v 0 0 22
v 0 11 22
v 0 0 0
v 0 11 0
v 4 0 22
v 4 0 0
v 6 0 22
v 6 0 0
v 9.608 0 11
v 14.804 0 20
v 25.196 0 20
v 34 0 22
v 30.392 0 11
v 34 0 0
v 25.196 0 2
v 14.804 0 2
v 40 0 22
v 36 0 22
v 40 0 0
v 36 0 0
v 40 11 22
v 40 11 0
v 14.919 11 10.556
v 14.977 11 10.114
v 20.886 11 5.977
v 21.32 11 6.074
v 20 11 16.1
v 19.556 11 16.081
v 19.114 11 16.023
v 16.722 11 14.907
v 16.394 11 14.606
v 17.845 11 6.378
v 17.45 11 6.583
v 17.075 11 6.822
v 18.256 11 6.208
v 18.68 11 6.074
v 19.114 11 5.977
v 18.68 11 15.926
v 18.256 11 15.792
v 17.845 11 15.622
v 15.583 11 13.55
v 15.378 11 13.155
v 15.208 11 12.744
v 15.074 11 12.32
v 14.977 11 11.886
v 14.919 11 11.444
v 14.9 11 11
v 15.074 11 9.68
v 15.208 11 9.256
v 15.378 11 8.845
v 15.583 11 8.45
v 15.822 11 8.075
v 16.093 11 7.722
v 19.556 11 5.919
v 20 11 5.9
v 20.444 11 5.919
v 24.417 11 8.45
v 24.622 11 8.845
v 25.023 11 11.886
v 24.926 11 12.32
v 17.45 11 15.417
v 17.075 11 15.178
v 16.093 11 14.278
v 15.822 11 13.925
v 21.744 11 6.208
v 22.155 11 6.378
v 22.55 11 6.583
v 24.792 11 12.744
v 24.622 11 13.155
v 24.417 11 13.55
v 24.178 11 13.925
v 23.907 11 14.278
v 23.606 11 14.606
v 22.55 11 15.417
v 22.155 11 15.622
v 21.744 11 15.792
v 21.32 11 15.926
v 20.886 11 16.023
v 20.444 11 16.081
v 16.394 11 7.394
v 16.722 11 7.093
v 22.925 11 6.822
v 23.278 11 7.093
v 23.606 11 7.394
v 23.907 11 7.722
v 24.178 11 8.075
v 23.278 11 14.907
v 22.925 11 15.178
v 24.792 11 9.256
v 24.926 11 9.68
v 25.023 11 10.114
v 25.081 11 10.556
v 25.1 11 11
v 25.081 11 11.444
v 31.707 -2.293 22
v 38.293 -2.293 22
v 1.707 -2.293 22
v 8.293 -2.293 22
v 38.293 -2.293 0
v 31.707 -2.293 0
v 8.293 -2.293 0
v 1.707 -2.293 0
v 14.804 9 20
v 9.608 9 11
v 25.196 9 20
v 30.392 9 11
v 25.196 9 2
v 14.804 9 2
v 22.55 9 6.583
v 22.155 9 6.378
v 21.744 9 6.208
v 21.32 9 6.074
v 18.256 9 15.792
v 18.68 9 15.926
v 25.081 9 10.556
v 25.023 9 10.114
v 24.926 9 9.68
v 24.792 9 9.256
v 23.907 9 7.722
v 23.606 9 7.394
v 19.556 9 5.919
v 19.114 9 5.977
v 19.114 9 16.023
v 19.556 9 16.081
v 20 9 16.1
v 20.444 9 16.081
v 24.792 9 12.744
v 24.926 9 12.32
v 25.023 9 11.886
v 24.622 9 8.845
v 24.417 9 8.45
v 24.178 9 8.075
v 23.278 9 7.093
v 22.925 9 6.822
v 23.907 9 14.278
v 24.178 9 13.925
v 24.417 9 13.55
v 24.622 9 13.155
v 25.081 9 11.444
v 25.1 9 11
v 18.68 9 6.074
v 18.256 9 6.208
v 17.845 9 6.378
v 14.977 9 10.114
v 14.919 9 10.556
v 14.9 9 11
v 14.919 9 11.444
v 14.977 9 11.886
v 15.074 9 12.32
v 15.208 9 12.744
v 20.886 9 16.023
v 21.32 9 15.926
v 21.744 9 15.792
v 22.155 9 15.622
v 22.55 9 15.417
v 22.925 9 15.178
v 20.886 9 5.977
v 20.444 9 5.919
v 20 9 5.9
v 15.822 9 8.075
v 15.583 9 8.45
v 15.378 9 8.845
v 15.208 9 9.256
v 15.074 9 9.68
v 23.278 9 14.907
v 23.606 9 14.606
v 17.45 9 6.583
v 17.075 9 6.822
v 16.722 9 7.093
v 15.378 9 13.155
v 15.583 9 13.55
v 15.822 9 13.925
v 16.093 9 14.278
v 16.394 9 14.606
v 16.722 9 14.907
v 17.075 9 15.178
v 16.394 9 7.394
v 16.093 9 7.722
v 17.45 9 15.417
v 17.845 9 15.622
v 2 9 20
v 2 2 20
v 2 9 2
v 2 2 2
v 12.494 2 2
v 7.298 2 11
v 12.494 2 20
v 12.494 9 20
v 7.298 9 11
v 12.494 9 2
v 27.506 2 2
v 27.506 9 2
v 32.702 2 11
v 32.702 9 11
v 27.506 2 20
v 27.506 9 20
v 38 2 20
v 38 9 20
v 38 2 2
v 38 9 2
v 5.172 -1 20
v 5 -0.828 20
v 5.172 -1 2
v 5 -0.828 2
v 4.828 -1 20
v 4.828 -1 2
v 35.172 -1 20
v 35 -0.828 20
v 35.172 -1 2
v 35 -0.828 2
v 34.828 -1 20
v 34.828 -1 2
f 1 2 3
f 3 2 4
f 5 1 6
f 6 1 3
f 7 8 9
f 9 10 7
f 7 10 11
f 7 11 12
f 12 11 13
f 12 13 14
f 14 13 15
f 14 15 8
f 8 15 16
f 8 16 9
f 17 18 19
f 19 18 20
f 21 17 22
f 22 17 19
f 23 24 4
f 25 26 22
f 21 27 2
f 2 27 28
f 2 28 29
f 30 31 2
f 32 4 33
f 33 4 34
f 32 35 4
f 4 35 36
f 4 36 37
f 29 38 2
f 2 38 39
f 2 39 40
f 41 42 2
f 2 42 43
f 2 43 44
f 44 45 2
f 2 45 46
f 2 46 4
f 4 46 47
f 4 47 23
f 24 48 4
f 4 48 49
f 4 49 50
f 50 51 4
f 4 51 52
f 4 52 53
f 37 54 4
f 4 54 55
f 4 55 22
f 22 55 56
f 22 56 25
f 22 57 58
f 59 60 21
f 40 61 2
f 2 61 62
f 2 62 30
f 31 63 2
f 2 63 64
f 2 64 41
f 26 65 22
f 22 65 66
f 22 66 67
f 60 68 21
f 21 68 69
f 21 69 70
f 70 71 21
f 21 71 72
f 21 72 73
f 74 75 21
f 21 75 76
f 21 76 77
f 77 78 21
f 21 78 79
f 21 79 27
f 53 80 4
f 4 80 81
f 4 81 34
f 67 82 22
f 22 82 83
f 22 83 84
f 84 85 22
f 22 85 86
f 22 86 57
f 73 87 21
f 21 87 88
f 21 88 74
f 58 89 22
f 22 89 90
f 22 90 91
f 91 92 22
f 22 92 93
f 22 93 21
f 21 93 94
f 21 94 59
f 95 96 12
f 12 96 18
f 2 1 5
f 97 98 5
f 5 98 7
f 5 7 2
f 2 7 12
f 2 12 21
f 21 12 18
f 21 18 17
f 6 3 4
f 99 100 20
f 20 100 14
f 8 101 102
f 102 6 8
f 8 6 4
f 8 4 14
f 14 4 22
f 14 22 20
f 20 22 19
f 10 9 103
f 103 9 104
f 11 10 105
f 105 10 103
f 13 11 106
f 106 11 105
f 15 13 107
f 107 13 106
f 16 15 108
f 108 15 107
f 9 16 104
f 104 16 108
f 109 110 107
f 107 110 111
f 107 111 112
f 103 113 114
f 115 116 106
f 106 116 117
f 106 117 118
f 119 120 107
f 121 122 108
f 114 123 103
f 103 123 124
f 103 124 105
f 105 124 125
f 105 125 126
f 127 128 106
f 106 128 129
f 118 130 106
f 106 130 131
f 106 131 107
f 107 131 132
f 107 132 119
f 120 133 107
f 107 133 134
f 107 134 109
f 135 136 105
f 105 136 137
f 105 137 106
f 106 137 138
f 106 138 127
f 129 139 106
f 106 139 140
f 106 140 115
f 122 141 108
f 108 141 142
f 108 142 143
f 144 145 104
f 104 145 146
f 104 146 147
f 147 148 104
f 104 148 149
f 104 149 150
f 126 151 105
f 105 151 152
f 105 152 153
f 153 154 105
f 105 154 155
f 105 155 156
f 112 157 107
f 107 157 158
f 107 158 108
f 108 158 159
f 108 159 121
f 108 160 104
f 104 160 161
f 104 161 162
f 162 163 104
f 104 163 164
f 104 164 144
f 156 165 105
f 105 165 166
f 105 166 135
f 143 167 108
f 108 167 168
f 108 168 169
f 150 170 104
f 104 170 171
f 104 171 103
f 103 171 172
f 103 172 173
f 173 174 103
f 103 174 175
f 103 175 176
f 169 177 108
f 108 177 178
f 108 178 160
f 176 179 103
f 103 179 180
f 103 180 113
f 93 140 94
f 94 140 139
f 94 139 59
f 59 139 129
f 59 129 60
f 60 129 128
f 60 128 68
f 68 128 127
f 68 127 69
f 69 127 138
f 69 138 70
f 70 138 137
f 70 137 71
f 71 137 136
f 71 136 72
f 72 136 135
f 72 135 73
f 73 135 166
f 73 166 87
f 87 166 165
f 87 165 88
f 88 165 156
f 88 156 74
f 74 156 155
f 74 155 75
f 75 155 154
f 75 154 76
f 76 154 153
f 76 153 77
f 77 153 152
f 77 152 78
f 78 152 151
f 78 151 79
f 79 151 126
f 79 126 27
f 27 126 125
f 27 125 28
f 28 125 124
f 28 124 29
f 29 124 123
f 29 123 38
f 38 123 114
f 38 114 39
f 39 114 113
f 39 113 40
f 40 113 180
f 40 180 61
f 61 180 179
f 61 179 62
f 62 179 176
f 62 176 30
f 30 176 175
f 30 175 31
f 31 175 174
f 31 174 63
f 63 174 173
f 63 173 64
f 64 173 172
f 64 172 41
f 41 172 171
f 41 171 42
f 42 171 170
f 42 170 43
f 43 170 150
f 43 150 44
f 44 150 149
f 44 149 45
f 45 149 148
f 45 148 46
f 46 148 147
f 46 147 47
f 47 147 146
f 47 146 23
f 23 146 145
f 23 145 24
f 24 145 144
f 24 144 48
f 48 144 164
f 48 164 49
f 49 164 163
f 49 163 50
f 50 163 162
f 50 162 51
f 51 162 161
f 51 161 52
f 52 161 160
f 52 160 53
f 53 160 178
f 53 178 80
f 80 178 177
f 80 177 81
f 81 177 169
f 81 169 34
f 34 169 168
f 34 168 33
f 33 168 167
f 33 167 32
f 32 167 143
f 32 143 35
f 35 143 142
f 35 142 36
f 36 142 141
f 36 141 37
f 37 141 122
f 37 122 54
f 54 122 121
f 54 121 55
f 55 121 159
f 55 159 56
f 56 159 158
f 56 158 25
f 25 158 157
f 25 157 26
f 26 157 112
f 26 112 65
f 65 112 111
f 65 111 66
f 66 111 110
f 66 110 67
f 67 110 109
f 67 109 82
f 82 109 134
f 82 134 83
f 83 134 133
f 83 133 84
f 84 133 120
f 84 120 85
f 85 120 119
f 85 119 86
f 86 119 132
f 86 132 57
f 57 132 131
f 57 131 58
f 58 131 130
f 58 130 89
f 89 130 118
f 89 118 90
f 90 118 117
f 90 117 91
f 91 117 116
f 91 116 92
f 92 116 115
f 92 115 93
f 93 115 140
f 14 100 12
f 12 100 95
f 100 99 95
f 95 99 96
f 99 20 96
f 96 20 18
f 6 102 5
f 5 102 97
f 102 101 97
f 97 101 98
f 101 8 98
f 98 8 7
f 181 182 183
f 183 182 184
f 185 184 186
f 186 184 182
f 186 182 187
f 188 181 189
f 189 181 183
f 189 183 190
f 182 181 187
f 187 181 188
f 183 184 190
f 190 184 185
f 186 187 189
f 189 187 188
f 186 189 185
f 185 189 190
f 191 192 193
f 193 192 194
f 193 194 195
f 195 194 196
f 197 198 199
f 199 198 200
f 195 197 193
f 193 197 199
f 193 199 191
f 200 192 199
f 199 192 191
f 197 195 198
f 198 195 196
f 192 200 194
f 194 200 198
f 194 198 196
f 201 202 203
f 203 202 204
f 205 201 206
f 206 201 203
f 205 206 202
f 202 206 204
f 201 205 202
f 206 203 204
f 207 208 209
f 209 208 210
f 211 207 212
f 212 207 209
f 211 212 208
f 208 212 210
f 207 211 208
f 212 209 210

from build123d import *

# Parameters (mm, degrees)
BOSS_EXTRUDE1_DEPTH = 22
CUT_EXTRUDE1_DEPTH  = 9
SKETCH3_R           = 5.1
CUT_EXTRUDE2_DEPTH  = 48.201694885
SHELL2_START        = 2
SHELL2_DEPTH        = 7
SHELL2_2_DEPTH      = 18
CUT_EXTRUDE4_DEPTH  = 47.957427527


# Read off the part's stored shape, not the designer's step: Shell2
with BuildPart() as part:
    # Sketch1 → Boss-Extrude1 (new body)
    with BuildSketch(Plane.XY):
        Polygon((0, 0), (3, 0), (0, -3), (10, -3), (7, 0), (33, 0), (30, -3), (40, -3), (37, 0), (40, 0), (40, 11), (0, 11), align=None)
    extrude(amount=BOSS_EXTRUDE1_DEPTH)

    # Sketch2 → Cut-Extrude1 (cut)
    with BuildSketch(Plane(origin=(0, 0, 0), x_dir=(-1, 0, 0), z_dir=(0, -1, 0))):
        Polygon((-14.803847577, -20), (-25.196152423, -20), (-30.392304845, -11), (-25.196152423, -2), (-14.803847577, -2), (-9.607695155, -11), align=None)
    extrude(amount=-CUT_EXTRUDE1_DEPTH, mode=Mode.SUBTRACT)

    # Sketch3 → Cut-Extrude2 (cut, through all)
    with BuildSketch(Plane(origin=(0, 9, 0), x_dir=(-1, 0, 0), z_dir=(0, -1, 0))):
        with Locations(Location((-20, -11, 0), (0, 0, 180))):
            Circle(SKETCH3_R)
    extrude(amount=-CUT_EXTRUDE2_DEPTH, mode=Mode.SUBTRACT)

    # Shell2 outline → Shell2 (cut)
    with BuildSketch(Plane(origin=(0, 0, 0), x_dir=(1, 0, 0), z_dir=(0, 1, 0)).offset(SHELL2_START)):
        Polygon((2, -2), (2, -20), (12.494446501, -20), (7.298294078, -11), (12.494446501, -2), align=None)
        Polygon((32.701705922, -11), (27.505553499, -20), (38, -20), (38, -2), (27.505553499, -2), align=None)
    extrude(amount=SHELL2_DEPTH, mode=Mode.SUBTRACT)

    # Shell2 2 outline → Shell2 2 (cut)
    with BuildSketch(Plane.XY.offset(SHELL2_START)):
        Polygon((5.171572875, -1), (5, -0.828427125), (4.828427125, -1), align=None)
        Polygon((34.828427125, -1), (35.171572875, -1), (35, -0.828427125), align=None)
    extrude(amount=SHELL2_2_DEPTH, mode=Mode.SUBTRACT)

    # Sketch6 → Cut-Extrude4 (cut, through all)
    with BuildSketch(Plane.XY.offset(22)):
        Polygon((31.707106781, -2.292893219), (34, 0), (33, 0), (30, -3), (40, -3), (37, 0), (36, 0), (38.292893219, -2.292893219), align=None)
        Polygon((1.707106781, -2.292893219), (4, 0), (3, 0), (0, -3), (10, -3), (7, 0), (6, 0), (8.292893219, -2.292893219), align=None)
    extrude(amount=-CUT_EXTRUDE4_DEPTH, mode=Mode.SUBTRACT)


solid = part.part
